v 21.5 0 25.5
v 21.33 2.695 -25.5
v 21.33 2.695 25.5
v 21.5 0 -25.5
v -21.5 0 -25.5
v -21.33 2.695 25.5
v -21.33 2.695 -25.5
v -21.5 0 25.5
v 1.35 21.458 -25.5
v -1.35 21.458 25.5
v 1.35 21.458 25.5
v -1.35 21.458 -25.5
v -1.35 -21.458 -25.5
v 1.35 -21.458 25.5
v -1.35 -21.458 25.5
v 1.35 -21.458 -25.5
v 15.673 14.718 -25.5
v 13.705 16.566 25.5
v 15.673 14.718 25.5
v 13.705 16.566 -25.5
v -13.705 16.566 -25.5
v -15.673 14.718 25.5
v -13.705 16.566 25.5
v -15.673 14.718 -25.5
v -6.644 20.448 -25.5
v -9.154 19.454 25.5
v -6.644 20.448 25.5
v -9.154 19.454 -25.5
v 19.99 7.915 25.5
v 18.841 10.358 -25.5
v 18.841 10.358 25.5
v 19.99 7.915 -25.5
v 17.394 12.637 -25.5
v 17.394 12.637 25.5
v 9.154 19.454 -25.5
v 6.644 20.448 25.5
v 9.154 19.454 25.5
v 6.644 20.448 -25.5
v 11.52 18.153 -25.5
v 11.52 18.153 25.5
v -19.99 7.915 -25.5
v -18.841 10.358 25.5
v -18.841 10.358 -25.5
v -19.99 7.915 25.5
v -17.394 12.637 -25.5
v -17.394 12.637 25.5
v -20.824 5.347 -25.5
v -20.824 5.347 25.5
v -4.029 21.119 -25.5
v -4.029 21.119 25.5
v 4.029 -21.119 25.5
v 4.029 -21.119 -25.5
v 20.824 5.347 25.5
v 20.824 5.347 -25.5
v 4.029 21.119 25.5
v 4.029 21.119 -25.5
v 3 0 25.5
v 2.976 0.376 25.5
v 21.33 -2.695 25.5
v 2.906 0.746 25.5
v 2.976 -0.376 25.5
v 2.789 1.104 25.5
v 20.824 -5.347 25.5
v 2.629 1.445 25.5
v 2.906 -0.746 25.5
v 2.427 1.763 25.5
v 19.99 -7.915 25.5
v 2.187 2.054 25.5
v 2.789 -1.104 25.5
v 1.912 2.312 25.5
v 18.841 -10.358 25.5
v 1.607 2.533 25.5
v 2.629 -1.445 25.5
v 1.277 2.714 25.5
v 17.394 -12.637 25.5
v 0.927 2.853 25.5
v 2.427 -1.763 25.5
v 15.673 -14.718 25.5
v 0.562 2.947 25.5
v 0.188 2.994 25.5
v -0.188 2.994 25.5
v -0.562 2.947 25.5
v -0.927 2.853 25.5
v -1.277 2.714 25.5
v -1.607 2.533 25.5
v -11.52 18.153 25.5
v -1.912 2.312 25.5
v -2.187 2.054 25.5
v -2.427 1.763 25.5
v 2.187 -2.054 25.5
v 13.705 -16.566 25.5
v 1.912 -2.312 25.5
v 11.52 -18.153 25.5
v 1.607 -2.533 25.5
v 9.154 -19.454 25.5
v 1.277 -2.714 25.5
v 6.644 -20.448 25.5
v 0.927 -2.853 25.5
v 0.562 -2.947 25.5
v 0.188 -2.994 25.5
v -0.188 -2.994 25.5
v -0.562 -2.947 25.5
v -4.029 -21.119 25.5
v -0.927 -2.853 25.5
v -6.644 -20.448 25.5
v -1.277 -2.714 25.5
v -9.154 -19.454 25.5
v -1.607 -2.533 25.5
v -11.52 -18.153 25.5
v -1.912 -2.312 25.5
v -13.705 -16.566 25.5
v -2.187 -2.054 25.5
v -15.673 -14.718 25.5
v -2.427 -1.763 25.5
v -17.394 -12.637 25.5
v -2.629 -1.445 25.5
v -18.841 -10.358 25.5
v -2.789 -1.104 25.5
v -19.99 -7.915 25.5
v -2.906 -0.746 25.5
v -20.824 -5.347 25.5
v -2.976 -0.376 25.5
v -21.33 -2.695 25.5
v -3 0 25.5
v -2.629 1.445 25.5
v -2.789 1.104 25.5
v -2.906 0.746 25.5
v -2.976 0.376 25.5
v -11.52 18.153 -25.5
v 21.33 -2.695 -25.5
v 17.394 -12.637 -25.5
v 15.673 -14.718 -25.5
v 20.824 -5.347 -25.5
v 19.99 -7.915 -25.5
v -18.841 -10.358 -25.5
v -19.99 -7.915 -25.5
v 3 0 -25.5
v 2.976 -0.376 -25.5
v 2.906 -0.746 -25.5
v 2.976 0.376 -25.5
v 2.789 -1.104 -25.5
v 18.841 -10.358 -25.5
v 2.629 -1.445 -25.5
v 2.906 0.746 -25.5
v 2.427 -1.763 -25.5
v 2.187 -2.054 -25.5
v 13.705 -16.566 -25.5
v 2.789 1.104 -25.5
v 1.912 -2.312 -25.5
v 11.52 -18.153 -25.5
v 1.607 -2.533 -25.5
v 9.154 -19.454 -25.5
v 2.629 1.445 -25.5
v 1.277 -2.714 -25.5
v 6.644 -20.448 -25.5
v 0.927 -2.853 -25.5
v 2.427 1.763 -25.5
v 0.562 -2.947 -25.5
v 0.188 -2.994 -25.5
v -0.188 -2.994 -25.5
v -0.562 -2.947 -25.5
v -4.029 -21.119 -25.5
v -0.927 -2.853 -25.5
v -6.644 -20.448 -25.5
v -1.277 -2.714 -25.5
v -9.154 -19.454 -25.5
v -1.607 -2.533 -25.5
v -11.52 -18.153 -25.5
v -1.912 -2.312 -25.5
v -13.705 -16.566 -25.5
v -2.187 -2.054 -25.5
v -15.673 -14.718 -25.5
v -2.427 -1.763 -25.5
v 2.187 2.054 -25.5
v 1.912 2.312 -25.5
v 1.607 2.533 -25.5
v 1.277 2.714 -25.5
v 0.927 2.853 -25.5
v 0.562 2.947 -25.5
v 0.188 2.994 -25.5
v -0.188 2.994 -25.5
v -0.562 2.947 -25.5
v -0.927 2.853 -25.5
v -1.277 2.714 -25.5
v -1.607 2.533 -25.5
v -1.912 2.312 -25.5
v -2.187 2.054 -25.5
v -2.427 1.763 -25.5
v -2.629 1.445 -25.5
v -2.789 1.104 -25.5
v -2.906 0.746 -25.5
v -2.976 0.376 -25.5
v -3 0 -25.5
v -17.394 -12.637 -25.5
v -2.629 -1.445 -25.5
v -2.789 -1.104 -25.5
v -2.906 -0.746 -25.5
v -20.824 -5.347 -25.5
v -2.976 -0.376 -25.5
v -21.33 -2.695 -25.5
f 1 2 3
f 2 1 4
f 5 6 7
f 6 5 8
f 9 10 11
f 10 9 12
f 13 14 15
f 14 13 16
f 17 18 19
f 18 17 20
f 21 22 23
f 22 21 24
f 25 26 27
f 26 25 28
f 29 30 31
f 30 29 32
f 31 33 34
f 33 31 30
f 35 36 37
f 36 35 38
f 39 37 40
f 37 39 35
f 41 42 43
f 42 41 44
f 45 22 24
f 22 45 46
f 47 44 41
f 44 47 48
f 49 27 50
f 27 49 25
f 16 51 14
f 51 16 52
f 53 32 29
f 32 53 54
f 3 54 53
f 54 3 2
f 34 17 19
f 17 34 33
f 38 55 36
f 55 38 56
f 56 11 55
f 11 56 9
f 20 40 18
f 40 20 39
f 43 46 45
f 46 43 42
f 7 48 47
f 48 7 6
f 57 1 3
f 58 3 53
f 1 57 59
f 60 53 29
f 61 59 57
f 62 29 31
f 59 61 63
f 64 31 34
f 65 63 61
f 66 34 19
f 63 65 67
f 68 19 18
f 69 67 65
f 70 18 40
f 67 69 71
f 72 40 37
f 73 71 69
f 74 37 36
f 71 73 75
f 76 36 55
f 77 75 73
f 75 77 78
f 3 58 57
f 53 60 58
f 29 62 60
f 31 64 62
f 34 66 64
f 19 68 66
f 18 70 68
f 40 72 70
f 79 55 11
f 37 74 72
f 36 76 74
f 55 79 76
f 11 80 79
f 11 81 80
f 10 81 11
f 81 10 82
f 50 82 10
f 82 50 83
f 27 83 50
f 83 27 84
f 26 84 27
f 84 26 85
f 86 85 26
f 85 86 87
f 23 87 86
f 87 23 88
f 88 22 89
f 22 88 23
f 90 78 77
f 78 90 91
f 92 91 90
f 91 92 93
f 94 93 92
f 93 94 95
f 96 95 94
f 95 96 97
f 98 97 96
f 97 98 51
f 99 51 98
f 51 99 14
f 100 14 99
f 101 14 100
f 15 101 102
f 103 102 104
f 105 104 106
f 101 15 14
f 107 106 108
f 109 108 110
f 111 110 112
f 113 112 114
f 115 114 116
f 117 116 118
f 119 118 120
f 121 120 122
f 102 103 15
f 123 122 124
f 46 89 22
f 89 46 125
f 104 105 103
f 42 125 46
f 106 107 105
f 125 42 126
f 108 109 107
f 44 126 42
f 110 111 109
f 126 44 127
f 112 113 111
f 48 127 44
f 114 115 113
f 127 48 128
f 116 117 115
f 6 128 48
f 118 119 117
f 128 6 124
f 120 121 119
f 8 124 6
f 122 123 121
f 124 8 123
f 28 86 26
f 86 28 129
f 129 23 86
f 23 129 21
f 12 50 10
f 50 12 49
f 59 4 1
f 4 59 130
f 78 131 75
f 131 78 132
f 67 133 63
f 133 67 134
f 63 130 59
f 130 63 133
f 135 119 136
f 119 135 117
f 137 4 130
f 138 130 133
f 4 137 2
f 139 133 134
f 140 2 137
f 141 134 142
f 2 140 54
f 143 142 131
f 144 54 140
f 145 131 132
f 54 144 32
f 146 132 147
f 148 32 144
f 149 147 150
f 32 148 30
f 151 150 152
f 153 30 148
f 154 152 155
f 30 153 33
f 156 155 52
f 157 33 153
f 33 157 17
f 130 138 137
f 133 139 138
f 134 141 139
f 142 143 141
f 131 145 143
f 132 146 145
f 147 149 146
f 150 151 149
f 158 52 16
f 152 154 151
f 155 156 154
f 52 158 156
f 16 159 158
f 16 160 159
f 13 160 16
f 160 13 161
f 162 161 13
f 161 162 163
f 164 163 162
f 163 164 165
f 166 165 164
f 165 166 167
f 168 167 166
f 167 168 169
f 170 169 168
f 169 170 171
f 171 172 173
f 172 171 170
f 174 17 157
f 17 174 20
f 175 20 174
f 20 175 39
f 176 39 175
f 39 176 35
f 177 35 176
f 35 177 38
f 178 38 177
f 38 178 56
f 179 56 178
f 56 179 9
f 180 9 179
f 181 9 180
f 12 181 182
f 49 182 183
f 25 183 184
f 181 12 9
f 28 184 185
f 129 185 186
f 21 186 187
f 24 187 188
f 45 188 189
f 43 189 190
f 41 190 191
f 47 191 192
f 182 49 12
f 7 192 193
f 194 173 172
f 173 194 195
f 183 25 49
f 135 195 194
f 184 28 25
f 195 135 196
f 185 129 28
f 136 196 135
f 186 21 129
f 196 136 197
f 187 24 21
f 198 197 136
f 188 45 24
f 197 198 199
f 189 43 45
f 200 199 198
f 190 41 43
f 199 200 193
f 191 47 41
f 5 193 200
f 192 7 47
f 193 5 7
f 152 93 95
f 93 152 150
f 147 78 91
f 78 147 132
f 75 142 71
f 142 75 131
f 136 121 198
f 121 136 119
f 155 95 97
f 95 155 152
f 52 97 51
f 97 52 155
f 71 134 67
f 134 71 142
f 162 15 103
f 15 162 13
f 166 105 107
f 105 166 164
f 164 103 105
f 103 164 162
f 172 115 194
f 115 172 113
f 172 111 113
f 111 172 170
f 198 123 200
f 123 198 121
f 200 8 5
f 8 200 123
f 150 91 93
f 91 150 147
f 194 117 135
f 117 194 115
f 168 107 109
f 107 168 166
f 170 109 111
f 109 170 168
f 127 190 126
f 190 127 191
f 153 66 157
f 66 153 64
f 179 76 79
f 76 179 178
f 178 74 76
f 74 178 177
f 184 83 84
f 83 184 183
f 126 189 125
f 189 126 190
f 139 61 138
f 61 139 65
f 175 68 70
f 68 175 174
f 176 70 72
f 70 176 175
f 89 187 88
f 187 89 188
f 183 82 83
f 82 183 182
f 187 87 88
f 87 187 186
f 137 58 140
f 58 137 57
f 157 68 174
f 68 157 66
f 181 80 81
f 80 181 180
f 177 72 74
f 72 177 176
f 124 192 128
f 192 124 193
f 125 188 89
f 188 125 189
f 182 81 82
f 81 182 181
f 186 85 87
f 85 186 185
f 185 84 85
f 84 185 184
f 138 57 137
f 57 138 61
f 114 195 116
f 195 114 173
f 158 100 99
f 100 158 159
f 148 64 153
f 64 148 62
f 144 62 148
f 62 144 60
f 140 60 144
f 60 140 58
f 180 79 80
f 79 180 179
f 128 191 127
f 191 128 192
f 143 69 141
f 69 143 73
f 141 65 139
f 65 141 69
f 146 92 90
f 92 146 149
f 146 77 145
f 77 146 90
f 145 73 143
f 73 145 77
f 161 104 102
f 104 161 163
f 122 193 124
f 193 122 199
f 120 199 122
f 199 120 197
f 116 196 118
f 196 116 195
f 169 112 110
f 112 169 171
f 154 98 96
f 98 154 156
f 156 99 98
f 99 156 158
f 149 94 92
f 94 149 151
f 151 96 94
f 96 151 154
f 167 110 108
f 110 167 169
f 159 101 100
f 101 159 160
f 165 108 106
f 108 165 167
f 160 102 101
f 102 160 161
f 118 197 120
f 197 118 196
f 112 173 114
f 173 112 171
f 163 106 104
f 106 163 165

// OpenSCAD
$fn = 50;


difference() {
	union() {
		translate(v = [0, 0, -25.5000000000]) {
			cylinder(h = 51, r = 21.5000000000);
		}
	}
	union() {
		translate(v = [0, 0, -100.0000000000]) {
			cylinder(h = 200, r = 3);
		}
	}
}
